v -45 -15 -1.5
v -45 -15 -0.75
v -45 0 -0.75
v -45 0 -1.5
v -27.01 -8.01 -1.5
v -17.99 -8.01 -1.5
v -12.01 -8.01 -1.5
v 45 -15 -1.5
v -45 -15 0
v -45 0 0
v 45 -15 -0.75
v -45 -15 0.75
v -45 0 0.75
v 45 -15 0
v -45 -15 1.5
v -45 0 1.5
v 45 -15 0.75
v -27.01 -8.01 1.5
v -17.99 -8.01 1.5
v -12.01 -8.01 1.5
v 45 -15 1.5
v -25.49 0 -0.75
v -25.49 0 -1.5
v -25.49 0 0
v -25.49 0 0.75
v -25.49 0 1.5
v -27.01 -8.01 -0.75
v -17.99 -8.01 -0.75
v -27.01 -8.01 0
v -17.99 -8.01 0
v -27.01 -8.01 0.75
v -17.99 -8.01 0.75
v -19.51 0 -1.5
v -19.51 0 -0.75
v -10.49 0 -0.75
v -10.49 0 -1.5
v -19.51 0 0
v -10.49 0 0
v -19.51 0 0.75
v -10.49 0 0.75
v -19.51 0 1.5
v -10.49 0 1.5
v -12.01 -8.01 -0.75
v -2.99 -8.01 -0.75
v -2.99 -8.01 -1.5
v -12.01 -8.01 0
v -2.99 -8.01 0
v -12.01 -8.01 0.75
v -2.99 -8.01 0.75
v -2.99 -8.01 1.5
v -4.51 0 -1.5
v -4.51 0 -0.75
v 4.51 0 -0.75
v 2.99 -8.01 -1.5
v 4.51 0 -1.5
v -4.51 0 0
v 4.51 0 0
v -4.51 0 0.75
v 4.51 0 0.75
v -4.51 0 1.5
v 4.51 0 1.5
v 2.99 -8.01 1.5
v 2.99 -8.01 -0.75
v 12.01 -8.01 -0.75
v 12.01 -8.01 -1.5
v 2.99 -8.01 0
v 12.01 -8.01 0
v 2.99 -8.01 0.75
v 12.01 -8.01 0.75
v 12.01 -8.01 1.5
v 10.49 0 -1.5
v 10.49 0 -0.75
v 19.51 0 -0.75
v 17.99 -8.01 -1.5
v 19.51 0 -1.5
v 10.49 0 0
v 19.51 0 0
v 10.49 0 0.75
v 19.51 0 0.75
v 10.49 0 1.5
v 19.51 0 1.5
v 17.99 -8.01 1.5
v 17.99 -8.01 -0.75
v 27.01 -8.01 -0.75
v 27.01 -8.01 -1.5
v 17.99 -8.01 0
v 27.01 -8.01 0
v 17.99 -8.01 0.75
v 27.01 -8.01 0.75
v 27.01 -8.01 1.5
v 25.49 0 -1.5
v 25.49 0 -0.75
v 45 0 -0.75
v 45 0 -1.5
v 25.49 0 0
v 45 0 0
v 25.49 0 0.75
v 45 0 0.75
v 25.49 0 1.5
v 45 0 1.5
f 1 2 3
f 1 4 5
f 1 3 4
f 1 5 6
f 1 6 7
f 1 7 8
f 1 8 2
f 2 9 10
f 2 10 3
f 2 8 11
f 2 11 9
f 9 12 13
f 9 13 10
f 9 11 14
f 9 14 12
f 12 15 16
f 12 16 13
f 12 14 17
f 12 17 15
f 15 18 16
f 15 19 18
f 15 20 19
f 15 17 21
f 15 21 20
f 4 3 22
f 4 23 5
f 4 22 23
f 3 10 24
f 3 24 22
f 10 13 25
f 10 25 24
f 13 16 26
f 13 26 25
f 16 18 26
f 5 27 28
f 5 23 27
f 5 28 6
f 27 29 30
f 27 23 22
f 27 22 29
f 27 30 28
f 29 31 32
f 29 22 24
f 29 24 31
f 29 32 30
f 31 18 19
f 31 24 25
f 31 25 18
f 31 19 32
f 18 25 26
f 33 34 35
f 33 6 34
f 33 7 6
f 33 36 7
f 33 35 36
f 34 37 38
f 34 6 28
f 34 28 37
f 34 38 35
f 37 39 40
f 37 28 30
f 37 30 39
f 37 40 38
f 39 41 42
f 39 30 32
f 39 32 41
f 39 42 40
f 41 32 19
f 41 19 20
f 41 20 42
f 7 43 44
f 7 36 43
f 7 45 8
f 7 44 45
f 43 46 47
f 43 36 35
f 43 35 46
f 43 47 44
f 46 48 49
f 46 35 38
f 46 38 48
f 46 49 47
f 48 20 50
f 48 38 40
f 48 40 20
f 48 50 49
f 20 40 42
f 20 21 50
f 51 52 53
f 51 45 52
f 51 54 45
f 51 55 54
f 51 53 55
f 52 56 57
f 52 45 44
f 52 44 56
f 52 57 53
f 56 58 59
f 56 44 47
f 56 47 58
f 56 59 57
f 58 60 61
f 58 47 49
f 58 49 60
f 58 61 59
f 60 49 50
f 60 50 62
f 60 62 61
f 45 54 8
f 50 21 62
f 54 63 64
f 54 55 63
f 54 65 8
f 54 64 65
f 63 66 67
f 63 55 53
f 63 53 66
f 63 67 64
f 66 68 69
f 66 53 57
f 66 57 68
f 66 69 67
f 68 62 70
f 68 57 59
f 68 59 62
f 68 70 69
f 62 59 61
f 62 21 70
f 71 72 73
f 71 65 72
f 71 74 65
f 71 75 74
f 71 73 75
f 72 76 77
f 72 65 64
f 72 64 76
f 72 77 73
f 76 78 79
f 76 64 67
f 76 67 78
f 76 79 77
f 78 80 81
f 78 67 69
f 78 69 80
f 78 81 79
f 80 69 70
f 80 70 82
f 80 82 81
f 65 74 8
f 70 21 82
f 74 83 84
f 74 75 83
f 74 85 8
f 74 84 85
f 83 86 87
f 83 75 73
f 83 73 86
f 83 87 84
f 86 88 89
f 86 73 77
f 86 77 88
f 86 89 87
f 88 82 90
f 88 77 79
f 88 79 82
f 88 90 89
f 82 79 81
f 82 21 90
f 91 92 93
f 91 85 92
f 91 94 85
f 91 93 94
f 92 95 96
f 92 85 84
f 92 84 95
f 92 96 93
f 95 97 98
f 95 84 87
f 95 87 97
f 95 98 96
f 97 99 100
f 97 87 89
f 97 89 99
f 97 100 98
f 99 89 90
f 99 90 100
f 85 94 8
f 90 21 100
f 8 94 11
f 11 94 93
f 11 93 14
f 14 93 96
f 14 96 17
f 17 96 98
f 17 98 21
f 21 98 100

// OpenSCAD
// Start: lazy_union
default_5_default_5();
// End: lazy_union

// Modules.

// 'PartMaterial undef-default - default 5.0'
module default_5_default_5() {
  // 'None : _combine_solids_and_holes'
  union() {
    // 'upper : _combine_solids_and_holes'
    union() {
      // 'front'
      multmatrix(m=[[-1.0, 0.0, 0.0, 0.0], [0.0, -1.0, 0.0, 0.0], [0.0, 0.0, 1.0, -1.5], [0.0, 0.0, 0.0, 1.0]]) {
        // 'front : _combine_solids_and_holes'
        union() {
          // 'front'
          linear_extrude(height=3.0, twist=0.0, slices=4, scale=[1.0, 1.0]) {
            polygon(points=[[0.0, 0.0], [0.0, 0.0], [-4.51, 0.0], [-2.99, 8.01], [-7.5, 8.01], [-12.01, 8.01], [-10.49, 0.0], [-15.0, 0.0], [-15.0, 0.0], [-19.509999999999998, 0.0], [-17.990000000000002, 8.01], [-22.5, 8.01], [-27.009999999999998, 8.01], [-25.490000000000002, 0.0], [-30.0, 0.0], [-45.0, 0.0], [-45.0, 15.0], [0.0, 15.0], [45.0, 15.0], [45.0, 0.0], [30.0, 0.0], [30.0, 0.0], [25.490000000000002, 0.0], [27.009999999999998, 8.01], [22.5, 8.01], [17.990000000000002, 8.01], [19.509999999999998, 0.0], [15.0, 0.0], [15.0, 0.0], [10.49, 0.0], [12.01, 8.01], [7.5, 8.01], [2.99, 8.01], [4.51, 0.0], [0.0, 0.0]], paths=[[-1], [0, 1, 2, 3, 4, 5, 6, 0], [7, 8, 9, 10, 11, 12, 13, 14, 15, 16, 17, 18, 19, 7], [20, 21, 22, 23, 24, 25, 26, 20], [27, 28, 29, 30, 31, 32, 33, 34, 27]]);
          }
        }
      }
    }
  }
} // end module default_5_default_5
